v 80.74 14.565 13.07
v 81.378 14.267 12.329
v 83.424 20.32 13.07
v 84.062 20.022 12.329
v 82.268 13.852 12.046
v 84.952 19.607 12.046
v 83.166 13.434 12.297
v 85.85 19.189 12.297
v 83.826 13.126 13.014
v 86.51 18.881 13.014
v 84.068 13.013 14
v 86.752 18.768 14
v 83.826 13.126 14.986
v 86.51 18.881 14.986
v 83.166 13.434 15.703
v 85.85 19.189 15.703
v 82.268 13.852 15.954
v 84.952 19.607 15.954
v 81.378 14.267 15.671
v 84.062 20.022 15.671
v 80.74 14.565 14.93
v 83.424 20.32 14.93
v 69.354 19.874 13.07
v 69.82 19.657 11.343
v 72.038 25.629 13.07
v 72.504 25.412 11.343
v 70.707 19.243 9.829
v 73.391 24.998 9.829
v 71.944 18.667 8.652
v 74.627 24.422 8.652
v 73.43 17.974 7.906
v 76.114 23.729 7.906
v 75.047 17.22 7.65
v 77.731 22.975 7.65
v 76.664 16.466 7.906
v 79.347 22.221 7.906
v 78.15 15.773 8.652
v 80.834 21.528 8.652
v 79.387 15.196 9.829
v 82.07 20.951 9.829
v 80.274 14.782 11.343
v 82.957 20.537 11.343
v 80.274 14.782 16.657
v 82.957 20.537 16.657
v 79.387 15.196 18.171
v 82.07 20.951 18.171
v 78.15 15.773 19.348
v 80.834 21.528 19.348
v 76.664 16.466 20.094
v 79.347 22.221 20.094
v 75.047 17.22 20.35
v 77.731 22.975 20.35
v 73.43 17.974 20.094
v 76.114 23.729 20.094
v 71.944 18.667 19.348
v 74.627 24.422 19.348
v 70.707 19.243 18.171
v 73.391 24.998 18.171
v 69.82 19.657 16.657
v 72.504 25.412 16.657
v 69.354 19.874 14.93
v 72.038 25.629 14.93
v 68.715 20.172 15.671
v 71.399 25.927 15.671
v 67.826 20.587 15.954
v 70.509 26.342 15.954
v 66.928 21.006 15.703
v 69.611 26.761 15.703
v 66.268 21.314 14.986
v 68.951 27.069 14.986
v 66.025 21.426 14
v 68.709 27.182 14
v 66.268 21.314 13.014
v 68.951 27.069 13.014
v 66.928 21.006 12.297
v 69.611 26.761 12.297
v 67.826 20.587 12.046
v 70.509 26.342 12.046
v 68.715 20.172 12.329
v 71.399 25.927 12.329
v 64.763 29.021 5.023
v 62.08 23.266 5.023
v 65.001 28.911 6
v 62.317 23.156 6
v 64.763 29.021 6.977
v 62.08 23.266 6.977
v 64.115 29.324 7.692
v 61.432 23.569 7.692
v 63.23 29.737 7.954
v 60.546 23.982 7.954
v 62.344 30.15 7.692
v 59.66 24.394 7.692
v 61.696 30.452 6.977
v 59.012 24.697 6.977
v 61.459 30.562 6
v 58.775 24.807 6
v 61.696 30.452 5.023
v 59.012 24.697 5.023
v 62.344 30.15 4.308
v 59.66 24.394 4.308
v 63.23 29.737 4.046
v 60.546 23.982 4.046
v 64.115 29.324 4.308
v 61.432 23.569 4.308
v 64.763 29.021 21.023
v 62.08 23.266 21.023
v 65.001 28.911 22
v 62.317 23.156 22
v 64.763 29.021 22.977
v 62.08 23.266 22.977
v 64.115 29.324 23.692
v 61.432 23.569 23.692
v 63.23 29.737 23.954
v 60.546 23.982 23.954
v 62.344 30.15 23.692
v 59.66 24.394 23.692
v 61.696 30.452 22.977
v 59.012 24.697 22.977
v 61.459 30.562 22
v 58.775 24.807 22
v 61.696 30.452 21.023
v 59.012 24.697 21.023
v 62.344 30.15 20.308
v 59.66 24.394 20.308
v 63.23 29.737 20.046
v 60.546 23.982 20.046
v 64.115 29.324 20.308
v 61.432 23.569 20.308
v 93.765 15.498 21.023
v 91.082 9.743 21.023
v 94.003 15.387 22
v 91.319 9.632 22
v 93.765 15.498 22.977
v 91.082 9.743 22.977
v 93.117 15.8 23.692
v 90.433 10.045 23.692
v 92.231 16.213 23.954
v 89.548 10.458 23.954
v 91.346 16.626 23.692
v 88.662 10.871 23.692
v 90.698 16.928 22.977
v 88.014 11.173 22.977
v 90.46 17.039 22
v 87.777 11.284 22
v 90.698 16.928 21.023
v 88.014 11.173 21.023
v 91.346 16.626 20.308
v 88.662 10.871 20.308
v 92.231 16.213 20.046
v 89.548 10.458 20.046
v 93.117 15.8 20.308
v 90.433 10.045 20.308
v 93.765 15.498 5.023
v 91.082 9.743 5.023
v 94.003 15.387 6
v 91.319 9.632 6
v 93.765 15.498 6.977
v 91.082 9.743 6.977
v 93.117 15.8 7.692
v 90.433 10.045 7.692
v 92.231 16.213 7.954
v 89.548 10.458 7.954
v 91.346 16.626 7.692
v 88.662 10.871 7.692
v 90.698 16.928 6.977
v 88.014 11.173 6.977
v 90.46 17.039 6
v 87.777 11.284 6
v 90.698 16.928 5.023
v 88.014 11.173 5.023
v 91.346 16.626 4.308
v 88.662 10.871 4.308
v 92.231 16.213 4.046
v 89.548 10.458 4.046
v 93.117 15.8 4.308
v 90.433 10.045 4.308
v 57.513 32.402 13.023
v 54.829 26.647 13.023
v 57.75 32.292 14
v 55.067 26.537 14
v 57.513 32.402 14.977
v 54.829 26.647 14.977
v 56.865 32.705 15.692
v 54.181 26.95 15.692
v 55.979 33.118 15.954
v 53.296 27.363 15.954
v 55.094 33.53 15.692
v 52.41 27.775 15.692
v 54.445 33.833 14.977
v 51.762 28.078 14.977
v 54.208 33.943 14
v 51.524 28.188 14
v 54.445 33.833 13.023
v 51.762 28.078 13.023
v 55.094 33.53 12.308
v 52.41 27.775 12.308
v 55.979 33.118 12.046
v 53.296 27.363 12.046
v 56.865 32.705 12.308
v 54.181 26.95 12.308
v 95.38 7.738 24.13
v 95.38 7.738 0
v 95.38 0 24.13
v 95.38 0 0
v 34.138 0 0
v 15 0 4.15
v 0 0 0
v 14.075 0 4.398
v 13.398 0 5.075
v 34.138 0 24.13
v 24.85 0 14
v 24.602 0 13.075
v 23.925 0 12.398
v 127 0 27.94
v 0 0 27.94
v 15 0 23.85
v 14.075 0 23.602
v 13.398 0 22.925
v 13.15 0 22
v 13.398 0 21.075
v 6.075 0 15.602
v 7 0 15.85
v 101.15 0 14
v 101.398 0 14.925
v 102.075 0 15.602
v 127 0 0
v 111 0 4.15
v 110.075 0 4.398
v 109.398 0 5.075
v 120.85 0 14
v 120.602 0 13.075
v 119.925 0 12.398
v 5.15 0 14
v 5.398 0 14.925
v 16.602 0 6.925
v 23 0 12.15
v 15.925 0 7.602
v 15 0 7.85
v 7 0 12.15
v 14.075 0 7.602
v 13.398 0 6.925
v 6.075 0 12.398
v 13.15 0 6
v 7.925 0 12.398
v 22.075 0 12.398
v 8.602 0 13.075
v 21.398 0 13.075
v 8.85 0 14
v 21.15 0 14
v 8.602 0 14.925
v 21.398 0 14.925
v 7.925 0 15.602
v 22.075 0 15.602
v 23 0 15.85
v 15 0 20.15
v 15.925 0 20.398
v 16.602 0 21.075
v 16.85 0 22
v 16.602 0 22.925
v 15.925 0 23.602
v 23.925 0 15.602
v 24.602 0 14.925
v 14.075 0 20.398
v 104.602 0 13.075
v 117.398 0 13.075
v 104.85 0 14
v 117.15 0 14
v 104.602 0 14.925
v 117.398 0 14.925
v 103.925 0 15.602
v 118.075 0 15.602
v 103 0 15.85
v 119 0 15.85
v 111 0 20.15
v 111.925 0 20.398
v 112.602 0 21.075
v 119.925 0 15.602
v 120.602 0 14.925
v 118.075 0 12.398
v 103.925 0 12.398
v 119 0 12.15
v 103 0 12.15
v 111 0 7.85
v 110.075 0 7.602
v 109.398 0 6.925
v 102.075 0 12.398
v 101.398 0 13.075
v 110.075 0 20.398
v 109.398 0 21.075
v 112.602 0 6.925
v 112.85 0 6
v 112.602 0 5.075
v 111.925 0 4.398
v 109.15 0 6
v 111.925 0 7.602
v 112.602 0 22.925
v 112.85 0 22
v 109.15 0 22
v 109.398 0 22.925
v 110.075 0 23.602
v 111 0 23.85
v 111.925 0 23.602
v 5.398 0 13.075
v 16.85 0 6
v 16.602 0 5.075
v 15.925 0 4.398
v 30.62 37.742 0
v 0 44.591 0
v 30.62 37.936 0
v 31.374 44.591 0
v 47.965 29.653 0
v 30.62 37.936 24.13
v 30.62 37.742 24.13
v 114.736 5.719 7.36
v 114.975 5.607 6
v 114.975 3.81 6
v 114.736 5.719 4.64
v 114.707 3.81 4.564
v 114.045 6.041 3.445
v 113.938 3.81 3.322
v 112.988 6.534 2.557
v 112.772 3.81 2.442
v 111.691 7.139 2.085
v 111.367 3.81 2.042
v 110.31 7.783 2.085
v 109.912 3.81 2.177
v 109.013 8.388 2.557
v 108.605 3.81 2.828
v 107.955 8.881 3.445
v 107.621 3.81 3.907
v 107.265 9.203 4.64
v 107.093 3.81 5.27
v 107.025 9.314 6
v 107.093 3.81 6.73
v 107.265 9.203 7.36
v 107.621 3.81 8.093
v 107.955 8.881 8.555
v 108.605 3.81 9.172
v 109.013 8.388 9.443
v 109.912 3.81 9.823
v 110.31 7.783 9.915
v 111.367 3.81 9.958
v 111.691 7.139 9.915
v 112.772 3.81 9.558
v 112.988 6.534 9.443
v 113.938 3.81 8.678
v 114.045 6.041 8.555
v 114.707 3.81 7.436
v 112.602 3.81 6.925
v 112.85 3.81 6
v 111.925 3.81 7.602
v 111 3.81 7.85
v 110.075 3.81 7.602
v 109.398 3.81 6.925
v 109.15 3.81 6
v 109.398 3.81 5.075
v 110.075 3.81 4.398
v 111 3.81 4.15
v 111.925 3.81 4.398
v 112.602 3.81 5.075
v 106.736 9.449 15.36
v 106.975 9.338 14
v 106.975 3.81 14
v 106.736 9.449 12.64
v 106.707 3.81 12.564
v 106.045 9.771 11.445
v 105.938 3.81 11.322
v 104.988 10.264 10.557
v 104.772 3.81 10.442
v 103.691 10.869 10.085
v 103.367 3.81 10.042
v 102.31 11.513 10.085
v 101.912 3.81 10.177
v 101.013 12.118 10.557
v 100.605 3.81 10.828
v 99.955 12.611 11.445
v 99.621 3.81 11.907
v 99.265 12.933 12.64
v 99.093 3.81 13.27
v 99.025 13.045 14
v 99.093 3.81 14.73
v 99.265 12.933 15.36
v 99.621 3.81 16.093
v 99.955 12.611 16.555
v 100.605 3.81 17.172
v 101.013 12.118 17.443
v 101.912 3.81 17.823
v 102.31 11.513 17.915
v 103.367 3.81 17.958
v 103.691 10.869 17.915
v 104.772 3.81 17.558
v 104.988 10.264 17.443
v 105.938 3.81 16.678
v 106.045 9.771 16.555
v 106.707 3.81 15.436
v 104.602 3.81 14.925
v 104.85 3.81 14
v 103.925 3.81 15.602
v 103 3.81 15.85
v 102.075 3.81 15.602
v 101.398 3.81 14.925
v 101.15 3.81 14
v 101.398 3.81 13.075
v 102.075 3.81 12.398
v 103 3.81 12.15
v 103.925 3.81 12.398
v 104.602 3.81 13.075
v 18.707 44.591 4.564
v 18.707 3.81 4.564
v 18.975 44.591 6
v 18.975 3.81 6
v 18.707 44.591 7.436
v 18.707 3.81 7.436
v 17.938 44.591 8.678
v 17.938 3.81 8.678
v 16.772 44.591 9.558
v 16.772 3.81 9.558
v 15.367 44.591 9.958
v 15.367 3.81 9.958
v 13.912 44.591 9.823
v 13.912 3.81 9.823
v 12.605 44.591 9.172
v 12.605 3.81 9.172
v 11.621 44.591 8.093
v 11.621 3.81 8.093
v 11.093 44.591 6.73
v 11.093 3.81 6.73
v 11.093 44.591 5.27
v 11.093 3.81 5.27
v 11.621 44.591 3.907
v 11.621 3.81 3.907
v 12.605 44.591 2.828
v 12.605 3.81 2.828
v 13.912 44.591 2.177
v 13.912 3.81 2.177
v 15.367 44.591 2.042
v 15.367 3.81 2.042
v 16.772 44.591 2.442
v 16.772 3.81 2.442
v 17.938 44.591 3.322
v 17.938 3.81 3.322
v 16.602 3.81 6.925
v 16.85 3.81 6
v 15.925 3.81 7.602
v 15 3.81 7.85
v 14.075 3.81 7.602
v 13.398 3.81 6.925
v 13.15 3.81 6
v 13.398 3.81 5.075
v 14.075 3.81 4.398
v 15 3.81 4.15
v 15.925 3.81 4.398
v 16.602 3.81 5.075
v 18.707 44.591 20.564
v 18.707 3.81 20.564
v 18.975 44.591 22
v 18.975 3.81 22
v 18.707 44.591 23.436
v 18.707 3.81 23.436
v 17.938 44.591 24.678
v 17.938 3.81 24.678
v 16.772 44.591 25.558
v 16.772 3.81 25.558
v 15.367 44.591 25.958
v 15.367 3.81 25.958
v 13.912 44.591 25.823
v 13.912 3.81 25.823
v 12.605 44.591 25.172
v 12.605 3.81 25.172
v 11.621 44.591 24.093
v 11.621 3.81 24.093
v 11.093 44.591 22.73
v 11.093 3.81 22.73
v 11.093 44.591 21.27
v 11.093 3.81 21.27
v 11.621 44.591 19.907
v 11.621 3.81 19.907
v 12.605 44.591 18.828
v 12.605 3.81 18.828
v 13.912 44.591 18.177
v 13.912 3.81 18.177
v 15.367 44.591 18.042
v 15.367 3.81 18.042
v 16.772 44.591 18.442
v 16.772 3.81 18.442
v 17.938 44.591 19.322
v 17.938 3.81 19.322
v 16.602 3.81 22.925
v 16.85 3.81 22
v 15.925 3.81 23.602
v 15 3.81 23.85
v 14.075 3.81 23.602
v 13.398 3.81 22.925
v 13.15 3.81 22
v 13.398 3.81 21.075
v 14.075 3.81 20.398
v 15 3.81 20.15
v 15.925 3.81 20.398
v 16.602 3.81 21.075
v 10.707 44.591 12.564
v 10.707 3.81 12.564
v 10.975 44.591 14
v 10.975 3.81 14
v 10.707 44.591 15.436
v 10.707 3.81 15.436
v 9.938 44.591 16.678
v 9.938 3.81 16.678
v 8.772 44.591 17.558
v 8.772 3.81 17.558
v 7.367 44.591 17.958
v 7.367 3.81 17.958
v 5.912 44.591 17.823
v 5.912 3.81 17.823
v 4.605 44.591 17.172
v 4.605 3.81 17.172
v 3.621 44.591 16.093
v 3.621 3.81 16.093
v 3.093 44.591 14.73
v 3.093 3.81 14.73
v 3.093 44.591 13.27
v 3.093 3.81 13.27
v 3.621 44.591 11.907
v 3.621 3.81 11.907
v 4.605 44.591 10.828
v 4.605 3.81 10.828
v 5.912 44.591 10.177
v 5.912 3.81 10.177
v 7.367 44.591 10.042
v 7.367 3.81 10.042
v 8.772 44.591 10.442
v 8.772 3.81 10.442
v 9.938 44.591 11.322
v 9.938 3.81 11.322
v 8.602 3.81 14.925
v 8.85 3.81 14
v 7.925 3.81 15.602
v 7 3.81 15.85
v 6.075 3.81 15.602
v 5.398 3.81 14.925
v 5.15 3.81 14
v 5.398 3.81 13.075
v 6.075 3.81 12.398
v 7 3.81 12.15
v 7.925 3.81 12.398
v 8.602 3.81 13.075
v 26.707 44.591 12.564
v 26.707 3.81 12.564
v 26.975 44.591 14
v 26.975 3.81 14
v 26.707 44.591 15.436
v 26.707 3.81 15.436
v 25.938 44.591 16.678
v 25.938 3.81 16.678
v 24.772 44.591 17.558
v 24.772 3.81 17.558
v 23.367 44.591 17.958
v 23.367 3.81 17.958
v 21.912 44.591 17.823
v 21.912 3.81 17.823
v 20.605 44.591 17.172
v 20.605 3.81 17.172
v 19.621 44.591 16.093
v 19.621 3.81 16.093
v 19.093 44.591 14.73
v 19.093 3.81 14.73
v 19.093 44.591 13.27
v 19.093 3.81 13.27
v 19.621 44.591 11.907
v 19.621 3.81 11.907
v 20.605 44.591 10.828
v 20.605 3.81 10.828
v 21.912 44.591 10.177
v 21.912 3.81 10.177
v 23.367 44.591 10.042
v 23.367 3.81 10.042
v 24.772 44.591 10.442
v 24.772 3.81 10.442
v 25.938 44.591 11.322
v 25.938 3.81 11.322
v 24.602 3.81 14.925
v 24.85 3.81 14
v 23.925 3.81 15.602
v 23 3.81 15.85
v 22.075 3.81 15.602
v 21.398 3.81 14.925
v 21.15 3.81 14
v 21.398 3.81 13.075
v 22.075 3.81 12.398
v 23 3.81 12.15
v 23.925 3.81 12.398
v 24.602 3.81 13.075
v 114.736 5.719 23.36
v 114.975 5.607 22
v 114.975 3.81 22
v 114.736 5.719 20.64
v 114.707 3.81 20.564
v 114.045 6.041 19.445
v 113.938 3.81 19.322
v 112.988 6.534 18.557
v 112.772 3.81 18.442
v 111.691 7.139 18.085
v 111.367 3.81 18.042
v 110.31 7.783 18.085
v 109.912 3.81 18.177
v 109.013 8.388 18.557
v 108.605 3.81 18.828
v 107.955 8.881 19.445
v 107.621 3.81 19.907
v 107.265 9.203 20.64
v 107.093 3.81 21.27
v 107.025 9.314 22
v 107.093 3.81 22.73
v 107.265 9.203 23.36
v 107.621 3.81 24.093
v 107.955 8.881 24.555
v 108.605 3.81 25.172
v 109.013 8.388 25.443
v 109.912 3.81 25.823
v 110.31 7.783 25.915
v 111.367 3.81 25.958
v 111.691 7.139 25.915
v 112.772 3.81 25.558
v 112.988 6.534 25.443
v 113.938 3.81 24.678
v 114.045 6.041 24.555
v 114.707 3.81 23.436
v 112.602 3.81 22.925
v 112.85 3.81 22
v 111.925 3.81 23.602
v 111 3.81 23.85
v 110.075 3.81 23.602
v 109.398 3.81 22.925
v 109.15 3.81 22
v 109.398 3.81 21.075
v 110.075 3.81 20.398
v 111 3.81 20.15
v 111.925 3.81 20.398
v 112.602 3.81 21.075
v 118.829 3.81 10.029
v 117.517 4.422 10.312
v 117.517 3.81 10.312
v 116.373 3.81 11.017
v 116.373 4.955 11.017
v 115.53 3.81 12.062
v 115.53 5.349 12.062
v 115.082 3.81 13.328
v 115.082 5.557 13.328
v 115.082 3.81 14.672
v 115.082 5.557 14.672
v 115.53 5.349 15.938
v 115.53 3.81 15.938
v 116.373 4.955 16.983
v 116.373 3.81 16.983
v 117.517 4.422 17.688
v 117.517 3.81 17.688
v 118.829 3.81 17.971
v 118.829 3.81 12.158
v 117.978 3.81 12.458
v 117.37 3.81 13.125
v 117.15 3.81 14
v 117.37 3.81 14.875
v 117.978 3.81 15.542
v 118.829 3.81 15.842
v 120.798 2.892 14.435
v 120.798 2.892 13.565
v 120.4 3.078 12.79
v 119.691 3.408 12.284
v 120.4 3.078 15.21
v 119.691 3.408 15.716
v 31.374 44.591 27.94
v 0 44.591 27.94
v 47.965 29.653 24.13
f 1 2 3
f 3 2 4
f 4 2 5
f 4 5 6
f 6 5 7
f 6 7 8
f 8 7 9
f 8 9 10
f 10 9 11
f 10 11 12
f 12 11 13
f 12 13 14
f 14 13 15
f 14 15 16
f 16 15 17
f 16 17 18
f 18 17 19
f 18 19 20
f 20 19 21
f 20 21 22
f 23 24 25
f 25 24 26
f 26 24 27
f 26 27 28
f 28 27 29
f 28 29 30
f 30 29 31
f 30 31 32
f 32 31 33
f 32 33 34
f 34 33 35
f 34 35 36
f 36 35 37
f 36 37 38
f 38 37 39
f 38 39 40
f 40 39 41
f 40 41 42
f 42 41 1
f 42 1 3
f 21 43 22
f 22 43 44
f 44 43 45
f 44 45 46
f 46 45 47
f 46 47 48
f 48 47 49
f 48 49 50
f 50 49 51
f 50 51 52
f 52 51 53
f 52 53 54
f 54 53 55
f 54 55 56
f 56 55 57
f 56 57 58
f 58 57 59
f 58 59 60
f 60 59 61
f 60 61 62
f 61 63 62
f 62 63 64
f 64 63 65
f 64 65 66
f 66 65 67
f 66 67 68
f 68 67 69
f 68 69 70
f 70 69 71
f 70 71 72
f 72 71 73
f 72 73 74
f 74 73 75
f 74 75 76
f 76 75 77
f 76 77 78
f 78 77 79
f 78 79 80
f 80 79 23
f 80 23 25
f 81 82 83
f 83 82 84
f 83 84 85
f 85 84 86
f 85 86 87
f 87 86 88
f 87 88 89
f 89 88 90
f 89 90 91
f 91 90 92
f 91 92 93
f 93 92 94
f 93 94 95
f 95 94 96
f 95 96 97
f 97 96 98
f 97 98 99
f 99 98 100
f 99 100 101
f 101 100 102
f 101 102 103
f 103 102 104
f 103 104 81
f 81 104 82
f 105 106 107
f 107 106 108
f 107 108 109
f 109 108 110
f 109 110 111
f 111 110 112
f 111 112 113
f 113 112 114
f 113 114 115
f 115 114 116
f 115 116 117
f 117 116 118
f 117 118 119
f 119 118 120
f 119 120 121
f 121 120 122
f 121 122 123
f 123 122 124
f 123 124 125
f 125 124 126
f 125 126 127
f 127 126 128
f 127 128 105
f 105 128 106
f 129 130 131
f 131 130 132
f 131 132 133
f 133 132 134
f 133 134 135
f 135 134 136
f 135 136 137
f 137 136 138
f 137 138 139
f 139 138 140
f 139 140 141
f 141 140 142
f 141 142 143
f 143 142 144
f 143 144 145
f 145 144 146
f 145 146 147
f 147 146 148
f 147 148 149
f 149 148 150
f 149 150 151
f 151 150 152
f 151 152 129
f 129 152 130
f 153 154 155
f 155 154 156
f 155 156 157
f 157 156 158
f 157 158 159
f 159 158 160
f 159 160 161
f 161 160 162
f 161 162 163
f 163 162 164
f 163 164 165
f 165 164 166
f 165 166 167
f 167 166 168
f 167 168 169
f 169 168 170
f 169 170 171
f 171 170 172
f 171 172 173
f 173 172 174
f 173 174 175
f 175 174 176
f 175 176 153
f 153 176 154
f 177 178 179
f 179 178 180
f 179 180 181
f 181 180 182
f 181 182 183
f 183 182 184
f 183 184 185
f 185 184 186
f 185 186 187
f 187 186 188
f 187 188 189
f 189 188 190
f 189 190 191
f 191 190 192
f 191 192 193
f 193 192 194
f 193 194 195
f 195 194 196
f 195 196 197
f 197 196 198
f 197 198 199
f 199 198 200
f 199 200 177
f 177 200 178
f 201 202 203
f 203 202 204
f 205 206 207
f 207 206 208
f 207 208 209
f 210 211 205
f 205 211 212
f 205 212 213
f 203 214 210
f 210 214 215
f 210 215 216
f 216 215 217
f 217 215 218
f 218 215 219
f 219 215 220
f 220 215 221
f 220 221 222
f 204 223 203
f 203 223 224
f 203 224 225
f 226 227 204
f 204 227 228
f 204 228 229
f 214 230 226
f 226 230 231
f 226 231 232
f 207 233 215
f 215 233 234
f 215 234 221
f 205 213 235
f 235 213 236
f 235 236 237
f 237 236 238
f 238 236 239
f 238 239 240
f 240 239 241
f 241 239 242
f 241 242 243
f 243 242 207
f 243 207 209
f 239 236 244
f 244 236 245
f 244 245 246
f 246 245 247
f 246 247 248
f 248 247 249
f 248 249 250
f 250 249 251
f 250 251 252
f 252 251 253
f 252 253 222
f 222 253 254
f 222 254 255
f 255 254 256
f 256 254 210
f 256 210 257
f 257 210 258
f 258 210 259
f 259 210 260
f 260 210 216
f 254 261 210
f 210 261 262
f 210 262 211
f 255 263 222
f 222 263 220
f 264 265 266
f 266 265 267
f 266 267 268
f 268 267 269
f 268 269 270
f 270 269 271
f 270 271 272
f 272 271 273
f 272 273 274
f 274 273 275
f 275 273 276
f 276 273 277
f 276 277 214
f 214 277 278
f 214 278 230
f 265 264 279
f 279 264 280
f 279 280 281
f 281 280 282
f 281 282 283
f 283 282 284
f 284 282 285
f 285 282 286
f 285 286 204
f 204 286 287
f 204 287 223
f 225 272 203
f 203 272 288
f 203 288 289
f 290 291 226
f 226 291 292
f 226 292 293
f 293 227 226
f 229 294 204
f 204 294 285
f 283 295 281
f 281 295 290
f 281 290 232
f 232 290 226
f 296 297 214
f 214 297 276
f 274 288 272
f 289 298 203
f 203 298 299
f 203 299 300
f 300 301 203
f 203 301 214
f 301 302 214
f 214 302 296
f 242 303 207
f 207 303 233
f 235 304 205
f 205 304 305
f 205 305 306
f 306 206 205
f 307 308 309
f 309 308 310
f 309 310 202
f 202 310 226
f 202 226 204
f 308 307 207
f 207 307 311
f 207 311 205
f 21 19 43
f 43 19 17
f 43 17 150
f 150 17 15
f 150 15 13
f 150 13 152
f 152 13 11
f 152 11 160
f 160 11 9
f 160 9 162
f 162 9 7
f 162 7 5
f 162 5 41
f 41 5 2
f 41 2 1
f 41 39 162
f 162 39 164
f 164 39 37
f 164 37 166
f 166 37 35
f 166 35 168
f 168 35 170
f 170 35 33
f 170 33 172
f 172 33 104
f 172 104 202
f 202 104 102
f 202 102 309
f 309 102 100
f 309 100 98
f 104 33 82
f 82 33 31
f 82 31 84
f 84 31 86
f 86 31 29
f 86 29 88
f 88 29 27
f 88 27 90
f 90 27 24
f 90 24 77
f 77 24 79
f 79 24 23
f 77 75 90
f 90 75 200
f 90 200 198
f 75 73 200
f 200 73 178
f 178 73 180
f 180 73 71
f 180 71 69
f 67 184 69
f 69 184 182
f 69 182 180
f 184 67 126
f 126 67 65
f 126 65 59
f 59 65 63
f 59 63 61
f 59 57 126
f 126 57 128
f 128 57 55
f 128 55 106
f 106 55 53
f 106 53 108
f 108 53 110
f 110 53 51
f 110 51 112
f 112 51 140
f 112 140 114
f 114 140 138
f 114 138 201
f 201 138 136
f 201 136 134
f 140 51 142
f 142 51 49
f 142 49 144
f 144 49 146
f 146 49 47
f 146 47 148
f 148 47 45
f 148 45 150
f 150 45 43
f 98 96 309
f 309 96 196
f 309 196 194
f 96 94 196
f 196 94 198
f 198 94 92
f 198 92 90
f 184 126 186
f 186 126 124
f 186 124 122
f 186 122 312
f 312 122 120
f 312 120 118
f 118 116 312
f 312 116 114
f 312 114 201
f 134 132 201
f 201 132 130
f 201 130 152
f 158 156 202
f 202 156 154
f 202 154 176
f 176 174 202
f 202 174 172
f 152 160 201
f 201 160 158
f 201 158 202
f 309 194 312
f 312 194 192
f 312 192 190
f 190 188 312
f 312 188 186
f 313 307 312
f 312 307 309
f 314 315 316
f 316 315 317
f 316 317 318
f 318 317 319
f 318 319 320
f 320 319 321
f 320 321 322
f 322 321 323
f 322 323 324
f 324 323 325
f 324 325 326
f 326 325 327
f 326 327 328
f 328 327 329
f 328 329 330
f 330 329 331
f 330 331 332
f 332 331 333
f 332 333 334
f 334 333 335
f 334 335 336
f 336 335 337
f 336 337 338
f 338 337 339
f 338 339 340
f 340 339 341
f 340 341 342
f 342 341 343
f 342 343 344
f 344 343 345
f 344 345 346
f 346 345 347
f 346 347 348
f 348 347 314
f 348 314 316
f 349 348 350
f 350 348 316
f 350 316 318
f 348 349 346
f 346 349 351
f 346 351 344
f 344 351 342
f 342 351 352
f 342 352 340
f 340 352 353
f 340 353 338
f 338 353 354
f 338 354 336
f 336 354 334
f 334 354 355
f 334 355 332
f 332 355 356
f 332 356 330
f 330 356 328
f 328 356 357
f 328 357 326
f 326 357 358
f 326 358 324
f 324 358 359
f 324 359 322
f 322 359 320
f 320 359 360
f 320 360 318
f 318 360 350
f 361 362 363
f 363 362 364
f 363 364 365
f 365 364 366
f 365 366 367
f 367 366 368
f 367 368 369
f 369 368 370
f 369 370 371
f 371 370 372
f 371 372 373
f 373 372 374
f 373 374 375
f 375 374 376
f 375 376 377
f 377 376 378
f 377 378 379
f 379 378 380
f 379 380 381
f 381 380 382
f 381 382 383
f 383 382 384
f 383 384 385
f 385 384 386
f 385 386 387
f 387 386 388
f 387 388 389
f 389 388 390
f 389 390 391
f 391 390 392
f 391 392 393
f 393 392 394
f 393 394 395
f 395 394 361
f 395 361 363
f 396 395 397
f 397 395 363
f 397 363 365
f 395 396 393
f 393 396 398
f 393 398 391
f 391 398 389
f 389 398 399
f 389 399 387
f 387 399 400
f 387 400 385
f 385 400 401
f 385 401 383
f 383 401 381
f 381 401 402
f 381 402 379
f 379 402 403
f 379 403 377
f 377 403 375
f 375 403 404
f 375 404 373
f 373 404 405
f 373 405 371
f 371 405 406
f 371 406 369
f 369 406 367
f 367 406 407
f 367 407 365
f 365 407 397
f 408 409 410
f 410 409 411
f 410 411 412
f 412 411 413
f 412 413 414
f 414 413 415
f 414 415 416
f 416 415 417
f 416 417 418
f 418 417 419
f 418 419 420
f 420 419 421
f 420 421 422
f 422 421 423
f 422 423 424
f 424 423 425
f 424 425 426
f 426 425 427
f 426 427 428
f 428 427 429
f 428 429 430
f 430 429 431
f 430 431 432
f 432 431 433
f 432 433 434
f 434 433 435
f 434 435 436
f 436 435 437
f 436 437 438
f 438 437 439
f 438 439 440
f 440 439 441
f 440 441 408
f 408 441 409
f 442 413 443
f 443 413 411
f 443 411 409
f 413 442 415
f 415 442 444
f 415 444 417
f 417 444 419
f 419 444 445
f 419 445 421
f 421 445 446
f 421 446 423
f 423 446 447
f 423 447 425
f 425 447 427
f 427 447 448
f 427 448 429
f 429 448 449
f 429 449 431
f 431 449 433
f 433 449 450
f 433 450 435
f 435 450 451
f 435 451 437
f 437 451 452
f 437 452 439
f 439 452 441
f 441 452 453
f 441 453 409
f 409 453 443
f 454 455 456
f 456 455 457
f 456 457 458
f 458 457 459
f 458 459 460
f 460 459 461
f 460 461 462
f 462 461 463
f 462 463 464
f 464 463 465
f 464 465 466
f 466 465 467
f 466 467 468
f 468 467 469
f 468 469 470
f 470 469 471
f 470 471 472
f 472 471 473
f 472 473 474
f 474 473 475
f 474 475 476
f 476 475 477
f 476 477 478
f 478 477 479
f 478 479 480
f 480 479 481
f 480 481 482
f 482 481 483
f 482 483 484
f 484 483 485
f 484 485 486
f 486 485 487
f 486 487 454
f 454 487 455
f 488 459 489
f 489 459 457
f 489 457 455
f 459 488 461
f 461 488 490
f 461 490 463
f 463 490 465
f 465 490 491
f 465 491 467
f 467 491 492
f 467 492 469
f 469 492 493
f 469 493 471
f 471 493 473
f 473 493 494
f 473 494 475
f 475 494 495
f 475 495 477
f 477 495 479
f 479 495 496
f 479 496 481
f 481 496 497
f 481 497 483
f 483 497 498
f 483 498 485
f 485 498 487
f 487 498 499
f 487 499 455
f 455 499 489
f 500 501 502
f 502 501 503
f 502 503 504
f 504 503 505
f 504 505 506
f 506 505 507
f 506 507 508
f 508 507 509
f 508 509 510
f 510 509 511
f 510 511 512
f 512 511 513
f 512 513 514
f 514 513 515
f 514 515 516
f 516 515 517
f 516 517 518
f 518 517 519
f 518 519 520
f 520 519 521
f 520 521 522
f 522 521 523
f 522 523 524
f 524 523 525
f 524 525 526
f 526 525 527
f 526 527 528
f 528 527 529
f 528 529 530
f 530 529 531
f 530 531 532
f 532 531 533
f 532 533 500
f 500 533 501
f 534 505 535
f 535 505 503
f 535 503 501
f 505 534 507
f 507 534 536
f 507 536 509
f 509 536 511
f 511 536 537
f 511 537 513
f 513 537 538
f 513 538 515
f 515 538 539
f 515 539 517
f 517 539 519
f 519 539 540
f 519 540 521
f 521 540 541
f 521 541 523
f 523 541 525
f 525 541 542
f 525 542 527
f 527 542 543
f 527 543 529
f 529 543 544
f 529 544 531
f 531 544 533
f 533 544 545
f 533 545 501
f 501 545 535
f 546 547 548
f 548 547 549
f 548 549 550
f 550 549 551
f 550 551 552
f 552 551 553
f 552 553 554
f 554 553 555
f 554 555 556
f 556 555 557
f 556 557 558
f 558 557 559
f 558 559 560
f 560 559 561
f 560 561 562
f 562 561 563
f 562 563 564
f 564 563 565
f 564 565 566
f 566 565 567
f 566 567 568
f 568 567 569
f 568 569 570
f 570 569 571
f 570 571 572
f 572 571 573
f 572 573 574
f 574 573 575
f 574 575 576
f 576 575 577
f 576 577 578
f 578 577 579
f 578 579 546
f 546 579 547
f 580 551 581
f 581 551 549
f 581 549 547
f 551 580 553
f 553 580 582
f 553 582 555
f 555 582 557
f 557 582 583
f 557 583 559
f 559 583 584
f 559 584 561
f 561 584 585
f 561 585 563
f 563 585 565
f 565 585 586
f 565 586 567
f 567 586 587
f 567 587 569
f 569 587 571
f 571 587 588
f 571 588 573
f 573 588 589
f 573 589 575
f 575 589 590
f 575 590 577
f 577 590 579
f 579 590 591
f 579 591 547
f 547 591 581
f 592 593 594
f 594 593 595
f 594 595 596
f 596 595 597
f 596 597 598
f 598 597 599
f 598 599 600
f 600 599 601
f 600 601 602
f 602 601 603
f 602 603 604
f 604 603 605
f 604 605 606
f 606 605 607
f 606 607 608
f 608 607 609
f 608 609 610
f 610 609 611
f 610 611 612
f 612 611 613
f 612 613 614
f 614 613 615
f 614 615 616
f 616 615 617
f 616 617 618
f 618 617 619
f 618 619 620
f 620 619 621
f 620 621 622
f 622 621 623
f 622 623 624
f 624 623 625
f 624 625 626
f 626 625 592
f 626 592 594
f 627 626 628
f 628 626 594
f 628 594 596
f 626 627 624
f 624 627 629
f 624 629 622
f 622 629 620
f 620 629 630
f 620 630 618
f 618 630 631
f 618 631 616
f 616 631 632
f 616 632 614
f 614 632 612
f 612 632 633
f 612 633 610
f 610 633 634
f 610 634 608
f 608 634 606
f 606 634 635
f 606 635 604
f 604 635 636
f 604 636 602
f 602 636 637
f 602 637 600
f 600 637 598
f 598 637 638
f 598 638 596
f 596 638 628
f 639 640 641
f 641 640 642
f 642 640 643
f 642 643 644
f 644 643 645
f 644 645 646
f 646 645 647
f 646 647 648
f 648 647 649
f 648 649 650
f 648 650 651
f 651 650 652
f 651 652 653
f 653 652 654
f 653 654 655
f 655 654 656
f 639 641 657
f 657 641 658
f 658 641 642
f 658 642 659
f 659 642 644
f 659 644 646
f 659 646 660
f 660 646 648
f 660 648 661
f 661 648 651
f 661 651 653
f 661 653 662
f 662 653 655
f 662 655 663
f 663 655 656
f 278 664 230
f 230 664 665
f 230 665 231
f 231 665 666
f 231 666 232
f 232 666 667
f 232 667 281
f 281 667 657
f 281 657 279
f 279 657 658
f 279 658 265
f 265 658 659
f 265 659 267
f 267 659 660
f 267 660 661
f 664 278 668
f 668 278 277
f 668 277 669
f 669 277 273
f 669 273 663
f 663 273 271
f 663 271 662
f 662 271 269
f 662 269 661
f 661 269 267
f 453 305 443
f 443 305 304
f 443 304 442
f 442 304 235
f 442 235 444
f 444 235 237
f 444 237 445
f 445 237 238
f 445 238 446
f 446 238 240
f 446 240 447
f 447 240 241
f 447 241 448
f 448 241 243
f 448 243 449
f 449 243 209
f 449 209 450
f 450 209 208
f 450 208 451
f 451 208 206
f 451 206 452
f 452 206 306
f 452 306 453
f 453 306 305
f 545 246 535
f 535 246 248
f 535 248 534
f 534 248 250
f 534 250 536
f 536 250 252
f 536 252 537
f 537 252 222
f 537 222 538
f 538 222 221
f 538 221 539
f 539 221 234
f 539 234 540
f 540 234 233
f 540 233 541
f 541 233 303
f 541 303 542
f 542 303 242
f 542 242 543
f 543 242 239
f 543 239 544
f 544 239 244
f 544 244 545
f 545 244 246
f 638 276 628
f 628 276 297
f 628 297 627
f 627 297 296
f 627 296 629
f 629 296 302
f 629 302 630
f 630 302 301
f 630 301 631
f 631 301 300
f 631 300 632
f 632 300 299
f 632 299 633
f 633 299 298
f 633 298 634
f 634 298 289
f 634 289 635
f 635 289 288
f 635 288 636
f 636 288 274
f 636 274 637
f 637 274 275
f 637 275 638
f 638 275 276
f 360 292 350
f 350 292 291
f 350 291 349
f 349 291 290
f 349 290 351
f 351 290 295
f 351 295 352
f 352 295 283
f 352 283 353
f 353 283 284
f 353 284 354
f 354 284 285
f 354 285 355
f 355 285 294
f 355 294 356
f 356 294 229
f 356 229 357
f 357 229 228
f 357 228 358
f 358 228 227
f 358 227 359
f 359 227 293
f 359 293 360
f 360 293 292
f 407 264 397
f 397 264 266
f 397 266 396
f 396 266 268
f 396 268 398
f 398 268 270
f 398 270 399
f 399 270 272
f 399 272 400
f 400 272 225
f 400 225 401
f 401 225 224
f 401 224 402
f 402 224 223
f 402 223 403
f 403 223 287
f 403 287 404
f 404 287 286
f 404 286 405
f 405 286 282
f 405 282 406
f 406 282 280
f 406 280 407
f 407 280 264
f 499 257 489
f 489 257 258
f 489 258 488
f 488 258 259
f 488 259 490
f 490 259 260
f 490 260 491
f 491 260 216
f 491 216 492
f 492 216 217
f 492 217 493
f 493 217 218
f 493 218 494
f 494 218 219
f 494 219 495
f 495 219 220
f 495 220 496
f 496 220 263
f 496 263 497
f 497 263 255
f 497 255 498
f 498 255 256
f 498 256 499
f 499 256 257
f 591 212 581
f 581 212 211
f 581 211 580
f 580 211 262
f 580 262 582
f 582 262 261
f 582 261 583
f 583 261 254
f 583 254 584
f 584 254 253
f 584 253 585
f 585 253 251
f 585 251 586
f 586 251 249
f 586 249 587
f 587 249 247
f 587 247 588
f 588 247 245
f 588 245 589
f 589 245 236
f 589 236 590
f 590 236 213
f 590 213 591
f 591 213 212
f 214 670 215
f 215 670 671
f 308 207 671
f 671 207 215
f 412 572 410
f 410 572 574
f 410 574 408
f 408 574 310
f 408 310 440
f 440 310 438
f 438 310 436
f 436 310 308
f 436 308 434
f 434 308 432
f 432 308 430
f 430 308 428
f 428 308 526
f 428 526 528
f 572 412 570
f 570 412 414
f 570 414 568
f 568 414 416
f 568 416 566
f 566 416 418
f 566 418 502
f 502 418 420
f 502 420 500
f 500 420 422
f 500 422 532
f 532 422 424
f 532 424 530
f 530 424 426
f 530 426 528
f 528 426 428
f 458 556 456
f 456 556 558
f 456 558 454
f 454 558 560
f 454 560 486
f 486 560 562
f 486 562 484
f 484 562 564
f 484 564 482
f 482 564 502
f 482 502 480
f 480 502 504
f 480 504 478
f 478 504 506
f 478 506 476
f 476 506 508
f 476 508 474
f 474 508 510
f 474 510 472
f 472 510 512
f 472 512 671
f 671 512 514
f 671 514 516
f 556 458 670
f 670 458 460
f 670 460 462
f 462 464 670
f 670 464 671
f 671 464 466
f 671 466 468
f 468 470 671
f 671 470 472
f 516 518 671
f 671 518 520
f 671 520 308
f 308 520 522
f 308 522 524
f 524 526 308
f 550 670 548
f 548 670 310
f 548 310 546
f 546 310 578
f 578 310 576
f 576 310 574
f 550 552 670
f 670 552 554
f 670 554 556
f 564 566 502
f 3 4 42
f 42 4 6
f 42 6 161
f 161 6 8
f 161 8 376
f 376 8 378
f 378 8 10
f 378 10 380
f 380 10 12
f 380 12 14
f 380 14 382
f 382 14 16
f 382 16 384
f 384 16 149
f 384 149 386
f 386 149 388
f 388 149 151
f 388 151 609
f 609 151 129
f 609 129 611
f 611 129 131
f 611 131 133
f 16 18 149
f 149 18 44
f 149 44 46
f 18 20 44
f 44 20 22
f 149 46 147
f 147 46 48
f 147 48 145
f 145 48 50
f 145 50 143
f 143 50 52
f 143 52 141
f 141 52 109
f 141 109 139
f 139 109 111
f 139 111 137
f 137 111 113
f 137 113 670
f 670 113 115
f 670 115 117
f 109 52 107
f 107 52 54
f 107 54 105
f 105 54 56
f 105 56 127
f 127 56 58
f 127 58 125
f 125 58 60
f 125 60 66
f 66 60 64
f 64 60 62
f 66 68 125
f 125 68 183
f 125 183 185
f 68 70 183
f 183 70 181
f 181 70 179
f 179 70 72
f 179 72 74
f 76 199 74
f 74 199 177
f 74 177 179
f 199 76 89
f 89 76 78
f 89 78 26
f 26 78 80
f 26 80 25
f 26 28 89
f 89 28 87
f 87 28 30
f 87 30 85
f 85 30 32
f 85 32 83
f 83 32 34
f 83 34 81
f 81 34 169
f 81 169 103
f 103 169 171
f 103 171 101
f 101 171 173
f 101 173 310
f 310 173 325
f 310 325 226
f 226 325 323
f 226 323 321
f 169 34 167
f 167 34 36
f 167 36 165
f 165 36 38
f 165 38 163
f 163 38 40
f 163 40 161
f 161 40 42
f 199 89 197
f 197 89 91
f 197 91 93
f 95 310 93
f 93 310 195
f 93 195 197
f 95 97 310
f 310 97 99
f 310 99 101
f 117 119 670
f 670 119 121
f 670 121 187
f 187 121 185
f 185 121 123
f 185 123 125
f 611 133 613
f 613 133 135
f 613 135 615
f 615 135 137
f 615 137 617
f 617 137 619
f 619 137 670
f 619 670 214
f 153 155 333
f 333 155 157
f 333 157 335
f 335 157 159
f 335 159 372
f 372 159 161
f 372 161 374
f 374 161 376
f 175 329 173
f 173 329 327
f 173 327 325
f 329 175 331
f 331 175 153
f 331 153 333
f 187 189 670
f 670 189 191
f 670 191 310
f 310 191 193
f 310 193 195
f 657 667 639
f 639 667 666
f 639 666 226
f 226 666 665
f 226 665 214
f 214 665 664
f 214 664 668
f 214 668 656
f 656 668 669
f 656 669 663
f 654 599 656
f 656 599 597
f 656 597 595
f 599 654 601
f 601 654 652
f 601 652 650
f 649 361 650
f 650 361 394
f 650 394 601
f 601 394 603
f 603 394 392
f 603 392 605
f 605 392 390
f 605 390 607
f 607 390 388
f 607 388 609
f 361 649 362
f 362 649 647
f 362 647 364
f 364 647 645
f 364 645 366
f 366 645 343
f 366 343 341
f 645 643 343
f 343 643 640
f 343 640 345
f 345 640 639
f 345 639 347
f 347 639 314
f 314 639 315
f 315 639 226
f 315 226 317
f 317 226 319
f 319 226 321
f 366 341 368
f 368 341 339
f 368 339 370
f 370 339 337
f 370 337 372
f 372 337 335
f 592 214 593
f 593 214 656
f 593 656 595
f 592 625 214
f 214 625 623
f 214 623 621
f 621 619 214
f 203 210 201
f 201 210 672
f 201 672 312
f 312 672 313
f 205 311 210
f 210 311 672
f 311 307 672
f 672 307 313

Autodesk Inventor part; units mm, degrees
ref_plane "YZ Plane" through (0, 0, 0) normal (1, 0, 0) x (0, 1, 0)
sketch "Sketch17" plane through (0, 0, 0) normal (0, 0, 1) x (1, 0, 0)
  line L0 (0, 0) -> (127, 0)
  line L1 (127, 0) -> (31.3739, 44.5912)
  line L2 (0, 44.5912) -> (0, 0)
  line L3 (0, 44.5912) -> (31.3739, 44.5912)
  dimension "d78" = 127
  dimension "d79" = 25
extrude "Extrusion20" add sketch "Sketch17" along normal blind 25.4
sketch "Sketch18" plane through (0, 0, 0) normal (0, -1, 0) x (1, 0, 0)
  line L0 (127.0002, 25.3999) -> (0.1269, 25.3999)
  line L1 (0.1269, 25.3999) -> (0.1269, -0.0001)
  line L2 (127.0002, -0.0001) -> (0.1269, -0.0001)
  line L3 (127.0002, 25.3999) -> (127.0002, -0.0001)
  circle A0 centre (111.0002, 22) radius 1.85 projected
  circle A1 centre (111.0002, 6) radius 1.85 projected
  circle A2 centre (119.0002, 14) radius 1.85 projected
  circle A3 centre (103.0002, 14) radius 1.85 projected
  circle A4 centre (7.0002, 14) radius 1.85 projected
  circle A5 centre (15.0002, 22) radius 1.85 projected
  circle A6 centre (15.0002, 6) radius 1.85 projected
  circle A7 centre (23.0002, 14) radius 1.85 projected
  point P0 (0, 0)
  point P1 (50.8002, 25.3999)
sketch "Sketch19" plane through (0, 0, 25.4) normal (0, 0, 1) x (1, 0, 0)
  line L0 (0, 0) -> (127, 0) projected
  line L1 (127, 0) -> (31.3739, 44.5912) projected
  line L2 (31.3739, 44.5912) -> (0, 44.5912) projected
  line L3 (0, 44.5912) -> (0, 0) projected
extrude "Extrusion21" add sketch "Sketch19" along normal blind 2.54
extrude "Extrusion22" cut sketch "Sketch18" against normal up to next contours A0 | A1 | A2 | A3 | A4 | A5 | A6 | A7
ref_plane "Work Plane11" through (0, 3.81, 0) normal (0, -1, 0) x (1, 0, 0)
sketch "Sketch20" plane through (0, 3.81, 0) normal (0, -1, 0) x (1, 0, 0)
  circle A0 centre (15.0002, 22) radius 1.85 projected
  circle A1 centre (15.0002, 22) radius 3.9751
  circle A2 centre (7.0002, 14) radius 1.85 projected
  circle A3 centre (7.0002, 14) radius 3.9751
  circle A4 centre (15.0002, 6) radius 1.85 projected
  circle A5 centre (15.0002, 6) radius 3.9751
  circle A6 centre (23.0002, 14) radius 1.85 projected
  circle A7 centre (23.0002, 14) radius 3.9751
  circle A8 centre (103.0002, 14) radius 1.85 projected
  circle A9 centre (103.0002, 14) radius 3.9751
  circle A10 centre (111.0002, 22) radius 1.85 projected
  circle A11 centre (111.0002, 22) radius 3.9751
  circle A12 centre (111.0002, 6) radius 1.85 projected
  circle A13 centre (111.0002, 6) radius 3.9751
  circle A14 centre (119.0002, 14) radius 1.85 projected
  circle A15 centre (119.0002, 14) radius 3.9751
  point P0 (0, 0)
  dimension "d100" = 7.9502
  dimension "d101" = 7.9502
  dimension "d102" = 7.9502
  dimension "d103" = 7.9502
  dimension "d104" = 7.9502
  dimension "d105" = 7.9502
  dimension "d106" = 7.9502
  dimension "d107" = 7.9502
extrude "Extrusion23" cut sketch "Sketch20" against normal up to next
ref_plane "Work Plane12" through (28.6903, 38.8361, 27.94) normal (0.4226, 0.9063, 0) x (0.9063, -0.4226, 0)
sketch "Sketch21" plane through (0, 0, 0) normal (0, -1, 0) x (1, 0, 0)
  line L0 (30.6202, 24.13) -> (95.3802, 24.13)
  line L1 (95.3802, 24.13) -> (95.3802, 0)
  line L2 (95.3802, 0) -> (30.6202, 0)
  line L3 (30.6202, 0) -> (30.6202, 24.13)
  line L4 (0, 27.94) -> (127, 27.94) construction
  line L5 (0, 0) -> (127, 0) construction
  circle A0 centre (23.0002, 14) radius 1.85 construction
  circle A1 centre (103.0002, 14) radius 1.85 construction
  dimension "d112" = 3.81
  dimension "d113" = 0
  dimension "d114" = 7.62
  dimension "d115" = 7.62
extrude "Extrusion24" cut sketch "Sketch21" against normal up to surface surface through (28.6903, 38.8361, 27.94) normal (0.4226, 0.9063, 0)
sketch "Sketch23" plane through (0, 0, 27.94) normal (0, 0, 1) x (1, 0, 0)
  line L0 (0, 0) -> (127, 0) construction
  line L1 (127, 0) -> (50.8, 0) construction
  line L2 (50.8, 0) -> (50.8, 35.5326) construction
  line L3 (127, 0) -> (31.3739, 44.5912) construction
  dimension "d119" = 76.2
sketch "Sketch24" plane through (31.3739, 44.5912, 27.94) normal (0.4226, 0.9063, 0) x (0.9063, -0.4226, 0)
  circle A0 centre (35.1489, 5.94) radius 1.85 projected
  circle A1 centre (27.1489, 13.94) radius 1.85 projected
  circle A2 centre (35.1489, 21.94) radius 1.85 projected
  circle A3 centre (43.1489, 13.94) radius 1.85 projected
  circle A4 centre (51.1489, 13.94) radius 4 projected
  circle A5 centre (59.1489, 13.94) radius 1.85 projected
  circle A6 centre (67.1489, 5.94) radius 1.85 projected
  circle A7 centre (75.1489, 13.94) radius 1.85 projected
  circle A8 centre (67.1489, 21.94) radius 1.85 projected
  circle A9 centre (51.1489, 13.94) radius 6.35
  circle A10 centre (67.1489, 5.94) radius 1.9542
  circle A11 centre (75.1489, 13.94) radius 3.9195
  circle A12 centre (67.1489, 21.94) radius 1.9542
  circle A13 centre (59.1489, 13.94) radius 1.9542
  circle A14 centre (43.1489, 13.94) radius 1.9542
  circle A15 centre (35.1489, 5.94) radius 1.9542
  circle A16 centre (27.1489, 13.94) radius 1.9542
  circle A17 centre (35.1489, 21.94) radius 1.9542
  point P0 (-9.5894, 27.94)
  dimension "d120" = 12.7
  dimension "d125" = 3.9084
  dimension "d126" = 3.9084
  dimension "d127" = 3.9084
  dimension "d128" = 3.9084
  dimension "d129" = 3.9084
  dimension "d130" = 3.9084
  dimension "d131" = 3.9084
extrude "Extrusion25" cut sketch "Sketch24" against normal up to surface (6.35 mm away) contours A0 | A1 | A2 | A3 A9 | A3 A9 A14 | A9 A3 | A3 A9 A14 | A9 A13 A14 | A13 A9 A5 | A9 A5 A13 | A9 A5 | A5 A9 | A4 | A6 | A8 | A10 | A12 | A15 | A16 | A17
sketch "Sketch27" plane through (95.3802, 0, 24.13) normal (0, 0, -1) x (-1, 0, 0)
  line L0 (64.76, 0) -> (0, 0) projected
  line L1 (64.76, 0) -> (64.76, 37.7416)
  line L2 (64.76, 37.7416) -> (47.4149, 29.6534)
  line L3 (43.8558, 28.1884) -> (40.3136, 26.5366) projected
  line L4 (47.4149, 29.6534) -> (61.2425, 0)
  line L5 (61.2425, 0) -> (64.76, 0)
  point P0 (95.3802, 0)
extrude "Extrusion27" add sketch "Sketch27" along normal up to surface (24.13 mm away)
properties part number "IntakeCchannelMount"
